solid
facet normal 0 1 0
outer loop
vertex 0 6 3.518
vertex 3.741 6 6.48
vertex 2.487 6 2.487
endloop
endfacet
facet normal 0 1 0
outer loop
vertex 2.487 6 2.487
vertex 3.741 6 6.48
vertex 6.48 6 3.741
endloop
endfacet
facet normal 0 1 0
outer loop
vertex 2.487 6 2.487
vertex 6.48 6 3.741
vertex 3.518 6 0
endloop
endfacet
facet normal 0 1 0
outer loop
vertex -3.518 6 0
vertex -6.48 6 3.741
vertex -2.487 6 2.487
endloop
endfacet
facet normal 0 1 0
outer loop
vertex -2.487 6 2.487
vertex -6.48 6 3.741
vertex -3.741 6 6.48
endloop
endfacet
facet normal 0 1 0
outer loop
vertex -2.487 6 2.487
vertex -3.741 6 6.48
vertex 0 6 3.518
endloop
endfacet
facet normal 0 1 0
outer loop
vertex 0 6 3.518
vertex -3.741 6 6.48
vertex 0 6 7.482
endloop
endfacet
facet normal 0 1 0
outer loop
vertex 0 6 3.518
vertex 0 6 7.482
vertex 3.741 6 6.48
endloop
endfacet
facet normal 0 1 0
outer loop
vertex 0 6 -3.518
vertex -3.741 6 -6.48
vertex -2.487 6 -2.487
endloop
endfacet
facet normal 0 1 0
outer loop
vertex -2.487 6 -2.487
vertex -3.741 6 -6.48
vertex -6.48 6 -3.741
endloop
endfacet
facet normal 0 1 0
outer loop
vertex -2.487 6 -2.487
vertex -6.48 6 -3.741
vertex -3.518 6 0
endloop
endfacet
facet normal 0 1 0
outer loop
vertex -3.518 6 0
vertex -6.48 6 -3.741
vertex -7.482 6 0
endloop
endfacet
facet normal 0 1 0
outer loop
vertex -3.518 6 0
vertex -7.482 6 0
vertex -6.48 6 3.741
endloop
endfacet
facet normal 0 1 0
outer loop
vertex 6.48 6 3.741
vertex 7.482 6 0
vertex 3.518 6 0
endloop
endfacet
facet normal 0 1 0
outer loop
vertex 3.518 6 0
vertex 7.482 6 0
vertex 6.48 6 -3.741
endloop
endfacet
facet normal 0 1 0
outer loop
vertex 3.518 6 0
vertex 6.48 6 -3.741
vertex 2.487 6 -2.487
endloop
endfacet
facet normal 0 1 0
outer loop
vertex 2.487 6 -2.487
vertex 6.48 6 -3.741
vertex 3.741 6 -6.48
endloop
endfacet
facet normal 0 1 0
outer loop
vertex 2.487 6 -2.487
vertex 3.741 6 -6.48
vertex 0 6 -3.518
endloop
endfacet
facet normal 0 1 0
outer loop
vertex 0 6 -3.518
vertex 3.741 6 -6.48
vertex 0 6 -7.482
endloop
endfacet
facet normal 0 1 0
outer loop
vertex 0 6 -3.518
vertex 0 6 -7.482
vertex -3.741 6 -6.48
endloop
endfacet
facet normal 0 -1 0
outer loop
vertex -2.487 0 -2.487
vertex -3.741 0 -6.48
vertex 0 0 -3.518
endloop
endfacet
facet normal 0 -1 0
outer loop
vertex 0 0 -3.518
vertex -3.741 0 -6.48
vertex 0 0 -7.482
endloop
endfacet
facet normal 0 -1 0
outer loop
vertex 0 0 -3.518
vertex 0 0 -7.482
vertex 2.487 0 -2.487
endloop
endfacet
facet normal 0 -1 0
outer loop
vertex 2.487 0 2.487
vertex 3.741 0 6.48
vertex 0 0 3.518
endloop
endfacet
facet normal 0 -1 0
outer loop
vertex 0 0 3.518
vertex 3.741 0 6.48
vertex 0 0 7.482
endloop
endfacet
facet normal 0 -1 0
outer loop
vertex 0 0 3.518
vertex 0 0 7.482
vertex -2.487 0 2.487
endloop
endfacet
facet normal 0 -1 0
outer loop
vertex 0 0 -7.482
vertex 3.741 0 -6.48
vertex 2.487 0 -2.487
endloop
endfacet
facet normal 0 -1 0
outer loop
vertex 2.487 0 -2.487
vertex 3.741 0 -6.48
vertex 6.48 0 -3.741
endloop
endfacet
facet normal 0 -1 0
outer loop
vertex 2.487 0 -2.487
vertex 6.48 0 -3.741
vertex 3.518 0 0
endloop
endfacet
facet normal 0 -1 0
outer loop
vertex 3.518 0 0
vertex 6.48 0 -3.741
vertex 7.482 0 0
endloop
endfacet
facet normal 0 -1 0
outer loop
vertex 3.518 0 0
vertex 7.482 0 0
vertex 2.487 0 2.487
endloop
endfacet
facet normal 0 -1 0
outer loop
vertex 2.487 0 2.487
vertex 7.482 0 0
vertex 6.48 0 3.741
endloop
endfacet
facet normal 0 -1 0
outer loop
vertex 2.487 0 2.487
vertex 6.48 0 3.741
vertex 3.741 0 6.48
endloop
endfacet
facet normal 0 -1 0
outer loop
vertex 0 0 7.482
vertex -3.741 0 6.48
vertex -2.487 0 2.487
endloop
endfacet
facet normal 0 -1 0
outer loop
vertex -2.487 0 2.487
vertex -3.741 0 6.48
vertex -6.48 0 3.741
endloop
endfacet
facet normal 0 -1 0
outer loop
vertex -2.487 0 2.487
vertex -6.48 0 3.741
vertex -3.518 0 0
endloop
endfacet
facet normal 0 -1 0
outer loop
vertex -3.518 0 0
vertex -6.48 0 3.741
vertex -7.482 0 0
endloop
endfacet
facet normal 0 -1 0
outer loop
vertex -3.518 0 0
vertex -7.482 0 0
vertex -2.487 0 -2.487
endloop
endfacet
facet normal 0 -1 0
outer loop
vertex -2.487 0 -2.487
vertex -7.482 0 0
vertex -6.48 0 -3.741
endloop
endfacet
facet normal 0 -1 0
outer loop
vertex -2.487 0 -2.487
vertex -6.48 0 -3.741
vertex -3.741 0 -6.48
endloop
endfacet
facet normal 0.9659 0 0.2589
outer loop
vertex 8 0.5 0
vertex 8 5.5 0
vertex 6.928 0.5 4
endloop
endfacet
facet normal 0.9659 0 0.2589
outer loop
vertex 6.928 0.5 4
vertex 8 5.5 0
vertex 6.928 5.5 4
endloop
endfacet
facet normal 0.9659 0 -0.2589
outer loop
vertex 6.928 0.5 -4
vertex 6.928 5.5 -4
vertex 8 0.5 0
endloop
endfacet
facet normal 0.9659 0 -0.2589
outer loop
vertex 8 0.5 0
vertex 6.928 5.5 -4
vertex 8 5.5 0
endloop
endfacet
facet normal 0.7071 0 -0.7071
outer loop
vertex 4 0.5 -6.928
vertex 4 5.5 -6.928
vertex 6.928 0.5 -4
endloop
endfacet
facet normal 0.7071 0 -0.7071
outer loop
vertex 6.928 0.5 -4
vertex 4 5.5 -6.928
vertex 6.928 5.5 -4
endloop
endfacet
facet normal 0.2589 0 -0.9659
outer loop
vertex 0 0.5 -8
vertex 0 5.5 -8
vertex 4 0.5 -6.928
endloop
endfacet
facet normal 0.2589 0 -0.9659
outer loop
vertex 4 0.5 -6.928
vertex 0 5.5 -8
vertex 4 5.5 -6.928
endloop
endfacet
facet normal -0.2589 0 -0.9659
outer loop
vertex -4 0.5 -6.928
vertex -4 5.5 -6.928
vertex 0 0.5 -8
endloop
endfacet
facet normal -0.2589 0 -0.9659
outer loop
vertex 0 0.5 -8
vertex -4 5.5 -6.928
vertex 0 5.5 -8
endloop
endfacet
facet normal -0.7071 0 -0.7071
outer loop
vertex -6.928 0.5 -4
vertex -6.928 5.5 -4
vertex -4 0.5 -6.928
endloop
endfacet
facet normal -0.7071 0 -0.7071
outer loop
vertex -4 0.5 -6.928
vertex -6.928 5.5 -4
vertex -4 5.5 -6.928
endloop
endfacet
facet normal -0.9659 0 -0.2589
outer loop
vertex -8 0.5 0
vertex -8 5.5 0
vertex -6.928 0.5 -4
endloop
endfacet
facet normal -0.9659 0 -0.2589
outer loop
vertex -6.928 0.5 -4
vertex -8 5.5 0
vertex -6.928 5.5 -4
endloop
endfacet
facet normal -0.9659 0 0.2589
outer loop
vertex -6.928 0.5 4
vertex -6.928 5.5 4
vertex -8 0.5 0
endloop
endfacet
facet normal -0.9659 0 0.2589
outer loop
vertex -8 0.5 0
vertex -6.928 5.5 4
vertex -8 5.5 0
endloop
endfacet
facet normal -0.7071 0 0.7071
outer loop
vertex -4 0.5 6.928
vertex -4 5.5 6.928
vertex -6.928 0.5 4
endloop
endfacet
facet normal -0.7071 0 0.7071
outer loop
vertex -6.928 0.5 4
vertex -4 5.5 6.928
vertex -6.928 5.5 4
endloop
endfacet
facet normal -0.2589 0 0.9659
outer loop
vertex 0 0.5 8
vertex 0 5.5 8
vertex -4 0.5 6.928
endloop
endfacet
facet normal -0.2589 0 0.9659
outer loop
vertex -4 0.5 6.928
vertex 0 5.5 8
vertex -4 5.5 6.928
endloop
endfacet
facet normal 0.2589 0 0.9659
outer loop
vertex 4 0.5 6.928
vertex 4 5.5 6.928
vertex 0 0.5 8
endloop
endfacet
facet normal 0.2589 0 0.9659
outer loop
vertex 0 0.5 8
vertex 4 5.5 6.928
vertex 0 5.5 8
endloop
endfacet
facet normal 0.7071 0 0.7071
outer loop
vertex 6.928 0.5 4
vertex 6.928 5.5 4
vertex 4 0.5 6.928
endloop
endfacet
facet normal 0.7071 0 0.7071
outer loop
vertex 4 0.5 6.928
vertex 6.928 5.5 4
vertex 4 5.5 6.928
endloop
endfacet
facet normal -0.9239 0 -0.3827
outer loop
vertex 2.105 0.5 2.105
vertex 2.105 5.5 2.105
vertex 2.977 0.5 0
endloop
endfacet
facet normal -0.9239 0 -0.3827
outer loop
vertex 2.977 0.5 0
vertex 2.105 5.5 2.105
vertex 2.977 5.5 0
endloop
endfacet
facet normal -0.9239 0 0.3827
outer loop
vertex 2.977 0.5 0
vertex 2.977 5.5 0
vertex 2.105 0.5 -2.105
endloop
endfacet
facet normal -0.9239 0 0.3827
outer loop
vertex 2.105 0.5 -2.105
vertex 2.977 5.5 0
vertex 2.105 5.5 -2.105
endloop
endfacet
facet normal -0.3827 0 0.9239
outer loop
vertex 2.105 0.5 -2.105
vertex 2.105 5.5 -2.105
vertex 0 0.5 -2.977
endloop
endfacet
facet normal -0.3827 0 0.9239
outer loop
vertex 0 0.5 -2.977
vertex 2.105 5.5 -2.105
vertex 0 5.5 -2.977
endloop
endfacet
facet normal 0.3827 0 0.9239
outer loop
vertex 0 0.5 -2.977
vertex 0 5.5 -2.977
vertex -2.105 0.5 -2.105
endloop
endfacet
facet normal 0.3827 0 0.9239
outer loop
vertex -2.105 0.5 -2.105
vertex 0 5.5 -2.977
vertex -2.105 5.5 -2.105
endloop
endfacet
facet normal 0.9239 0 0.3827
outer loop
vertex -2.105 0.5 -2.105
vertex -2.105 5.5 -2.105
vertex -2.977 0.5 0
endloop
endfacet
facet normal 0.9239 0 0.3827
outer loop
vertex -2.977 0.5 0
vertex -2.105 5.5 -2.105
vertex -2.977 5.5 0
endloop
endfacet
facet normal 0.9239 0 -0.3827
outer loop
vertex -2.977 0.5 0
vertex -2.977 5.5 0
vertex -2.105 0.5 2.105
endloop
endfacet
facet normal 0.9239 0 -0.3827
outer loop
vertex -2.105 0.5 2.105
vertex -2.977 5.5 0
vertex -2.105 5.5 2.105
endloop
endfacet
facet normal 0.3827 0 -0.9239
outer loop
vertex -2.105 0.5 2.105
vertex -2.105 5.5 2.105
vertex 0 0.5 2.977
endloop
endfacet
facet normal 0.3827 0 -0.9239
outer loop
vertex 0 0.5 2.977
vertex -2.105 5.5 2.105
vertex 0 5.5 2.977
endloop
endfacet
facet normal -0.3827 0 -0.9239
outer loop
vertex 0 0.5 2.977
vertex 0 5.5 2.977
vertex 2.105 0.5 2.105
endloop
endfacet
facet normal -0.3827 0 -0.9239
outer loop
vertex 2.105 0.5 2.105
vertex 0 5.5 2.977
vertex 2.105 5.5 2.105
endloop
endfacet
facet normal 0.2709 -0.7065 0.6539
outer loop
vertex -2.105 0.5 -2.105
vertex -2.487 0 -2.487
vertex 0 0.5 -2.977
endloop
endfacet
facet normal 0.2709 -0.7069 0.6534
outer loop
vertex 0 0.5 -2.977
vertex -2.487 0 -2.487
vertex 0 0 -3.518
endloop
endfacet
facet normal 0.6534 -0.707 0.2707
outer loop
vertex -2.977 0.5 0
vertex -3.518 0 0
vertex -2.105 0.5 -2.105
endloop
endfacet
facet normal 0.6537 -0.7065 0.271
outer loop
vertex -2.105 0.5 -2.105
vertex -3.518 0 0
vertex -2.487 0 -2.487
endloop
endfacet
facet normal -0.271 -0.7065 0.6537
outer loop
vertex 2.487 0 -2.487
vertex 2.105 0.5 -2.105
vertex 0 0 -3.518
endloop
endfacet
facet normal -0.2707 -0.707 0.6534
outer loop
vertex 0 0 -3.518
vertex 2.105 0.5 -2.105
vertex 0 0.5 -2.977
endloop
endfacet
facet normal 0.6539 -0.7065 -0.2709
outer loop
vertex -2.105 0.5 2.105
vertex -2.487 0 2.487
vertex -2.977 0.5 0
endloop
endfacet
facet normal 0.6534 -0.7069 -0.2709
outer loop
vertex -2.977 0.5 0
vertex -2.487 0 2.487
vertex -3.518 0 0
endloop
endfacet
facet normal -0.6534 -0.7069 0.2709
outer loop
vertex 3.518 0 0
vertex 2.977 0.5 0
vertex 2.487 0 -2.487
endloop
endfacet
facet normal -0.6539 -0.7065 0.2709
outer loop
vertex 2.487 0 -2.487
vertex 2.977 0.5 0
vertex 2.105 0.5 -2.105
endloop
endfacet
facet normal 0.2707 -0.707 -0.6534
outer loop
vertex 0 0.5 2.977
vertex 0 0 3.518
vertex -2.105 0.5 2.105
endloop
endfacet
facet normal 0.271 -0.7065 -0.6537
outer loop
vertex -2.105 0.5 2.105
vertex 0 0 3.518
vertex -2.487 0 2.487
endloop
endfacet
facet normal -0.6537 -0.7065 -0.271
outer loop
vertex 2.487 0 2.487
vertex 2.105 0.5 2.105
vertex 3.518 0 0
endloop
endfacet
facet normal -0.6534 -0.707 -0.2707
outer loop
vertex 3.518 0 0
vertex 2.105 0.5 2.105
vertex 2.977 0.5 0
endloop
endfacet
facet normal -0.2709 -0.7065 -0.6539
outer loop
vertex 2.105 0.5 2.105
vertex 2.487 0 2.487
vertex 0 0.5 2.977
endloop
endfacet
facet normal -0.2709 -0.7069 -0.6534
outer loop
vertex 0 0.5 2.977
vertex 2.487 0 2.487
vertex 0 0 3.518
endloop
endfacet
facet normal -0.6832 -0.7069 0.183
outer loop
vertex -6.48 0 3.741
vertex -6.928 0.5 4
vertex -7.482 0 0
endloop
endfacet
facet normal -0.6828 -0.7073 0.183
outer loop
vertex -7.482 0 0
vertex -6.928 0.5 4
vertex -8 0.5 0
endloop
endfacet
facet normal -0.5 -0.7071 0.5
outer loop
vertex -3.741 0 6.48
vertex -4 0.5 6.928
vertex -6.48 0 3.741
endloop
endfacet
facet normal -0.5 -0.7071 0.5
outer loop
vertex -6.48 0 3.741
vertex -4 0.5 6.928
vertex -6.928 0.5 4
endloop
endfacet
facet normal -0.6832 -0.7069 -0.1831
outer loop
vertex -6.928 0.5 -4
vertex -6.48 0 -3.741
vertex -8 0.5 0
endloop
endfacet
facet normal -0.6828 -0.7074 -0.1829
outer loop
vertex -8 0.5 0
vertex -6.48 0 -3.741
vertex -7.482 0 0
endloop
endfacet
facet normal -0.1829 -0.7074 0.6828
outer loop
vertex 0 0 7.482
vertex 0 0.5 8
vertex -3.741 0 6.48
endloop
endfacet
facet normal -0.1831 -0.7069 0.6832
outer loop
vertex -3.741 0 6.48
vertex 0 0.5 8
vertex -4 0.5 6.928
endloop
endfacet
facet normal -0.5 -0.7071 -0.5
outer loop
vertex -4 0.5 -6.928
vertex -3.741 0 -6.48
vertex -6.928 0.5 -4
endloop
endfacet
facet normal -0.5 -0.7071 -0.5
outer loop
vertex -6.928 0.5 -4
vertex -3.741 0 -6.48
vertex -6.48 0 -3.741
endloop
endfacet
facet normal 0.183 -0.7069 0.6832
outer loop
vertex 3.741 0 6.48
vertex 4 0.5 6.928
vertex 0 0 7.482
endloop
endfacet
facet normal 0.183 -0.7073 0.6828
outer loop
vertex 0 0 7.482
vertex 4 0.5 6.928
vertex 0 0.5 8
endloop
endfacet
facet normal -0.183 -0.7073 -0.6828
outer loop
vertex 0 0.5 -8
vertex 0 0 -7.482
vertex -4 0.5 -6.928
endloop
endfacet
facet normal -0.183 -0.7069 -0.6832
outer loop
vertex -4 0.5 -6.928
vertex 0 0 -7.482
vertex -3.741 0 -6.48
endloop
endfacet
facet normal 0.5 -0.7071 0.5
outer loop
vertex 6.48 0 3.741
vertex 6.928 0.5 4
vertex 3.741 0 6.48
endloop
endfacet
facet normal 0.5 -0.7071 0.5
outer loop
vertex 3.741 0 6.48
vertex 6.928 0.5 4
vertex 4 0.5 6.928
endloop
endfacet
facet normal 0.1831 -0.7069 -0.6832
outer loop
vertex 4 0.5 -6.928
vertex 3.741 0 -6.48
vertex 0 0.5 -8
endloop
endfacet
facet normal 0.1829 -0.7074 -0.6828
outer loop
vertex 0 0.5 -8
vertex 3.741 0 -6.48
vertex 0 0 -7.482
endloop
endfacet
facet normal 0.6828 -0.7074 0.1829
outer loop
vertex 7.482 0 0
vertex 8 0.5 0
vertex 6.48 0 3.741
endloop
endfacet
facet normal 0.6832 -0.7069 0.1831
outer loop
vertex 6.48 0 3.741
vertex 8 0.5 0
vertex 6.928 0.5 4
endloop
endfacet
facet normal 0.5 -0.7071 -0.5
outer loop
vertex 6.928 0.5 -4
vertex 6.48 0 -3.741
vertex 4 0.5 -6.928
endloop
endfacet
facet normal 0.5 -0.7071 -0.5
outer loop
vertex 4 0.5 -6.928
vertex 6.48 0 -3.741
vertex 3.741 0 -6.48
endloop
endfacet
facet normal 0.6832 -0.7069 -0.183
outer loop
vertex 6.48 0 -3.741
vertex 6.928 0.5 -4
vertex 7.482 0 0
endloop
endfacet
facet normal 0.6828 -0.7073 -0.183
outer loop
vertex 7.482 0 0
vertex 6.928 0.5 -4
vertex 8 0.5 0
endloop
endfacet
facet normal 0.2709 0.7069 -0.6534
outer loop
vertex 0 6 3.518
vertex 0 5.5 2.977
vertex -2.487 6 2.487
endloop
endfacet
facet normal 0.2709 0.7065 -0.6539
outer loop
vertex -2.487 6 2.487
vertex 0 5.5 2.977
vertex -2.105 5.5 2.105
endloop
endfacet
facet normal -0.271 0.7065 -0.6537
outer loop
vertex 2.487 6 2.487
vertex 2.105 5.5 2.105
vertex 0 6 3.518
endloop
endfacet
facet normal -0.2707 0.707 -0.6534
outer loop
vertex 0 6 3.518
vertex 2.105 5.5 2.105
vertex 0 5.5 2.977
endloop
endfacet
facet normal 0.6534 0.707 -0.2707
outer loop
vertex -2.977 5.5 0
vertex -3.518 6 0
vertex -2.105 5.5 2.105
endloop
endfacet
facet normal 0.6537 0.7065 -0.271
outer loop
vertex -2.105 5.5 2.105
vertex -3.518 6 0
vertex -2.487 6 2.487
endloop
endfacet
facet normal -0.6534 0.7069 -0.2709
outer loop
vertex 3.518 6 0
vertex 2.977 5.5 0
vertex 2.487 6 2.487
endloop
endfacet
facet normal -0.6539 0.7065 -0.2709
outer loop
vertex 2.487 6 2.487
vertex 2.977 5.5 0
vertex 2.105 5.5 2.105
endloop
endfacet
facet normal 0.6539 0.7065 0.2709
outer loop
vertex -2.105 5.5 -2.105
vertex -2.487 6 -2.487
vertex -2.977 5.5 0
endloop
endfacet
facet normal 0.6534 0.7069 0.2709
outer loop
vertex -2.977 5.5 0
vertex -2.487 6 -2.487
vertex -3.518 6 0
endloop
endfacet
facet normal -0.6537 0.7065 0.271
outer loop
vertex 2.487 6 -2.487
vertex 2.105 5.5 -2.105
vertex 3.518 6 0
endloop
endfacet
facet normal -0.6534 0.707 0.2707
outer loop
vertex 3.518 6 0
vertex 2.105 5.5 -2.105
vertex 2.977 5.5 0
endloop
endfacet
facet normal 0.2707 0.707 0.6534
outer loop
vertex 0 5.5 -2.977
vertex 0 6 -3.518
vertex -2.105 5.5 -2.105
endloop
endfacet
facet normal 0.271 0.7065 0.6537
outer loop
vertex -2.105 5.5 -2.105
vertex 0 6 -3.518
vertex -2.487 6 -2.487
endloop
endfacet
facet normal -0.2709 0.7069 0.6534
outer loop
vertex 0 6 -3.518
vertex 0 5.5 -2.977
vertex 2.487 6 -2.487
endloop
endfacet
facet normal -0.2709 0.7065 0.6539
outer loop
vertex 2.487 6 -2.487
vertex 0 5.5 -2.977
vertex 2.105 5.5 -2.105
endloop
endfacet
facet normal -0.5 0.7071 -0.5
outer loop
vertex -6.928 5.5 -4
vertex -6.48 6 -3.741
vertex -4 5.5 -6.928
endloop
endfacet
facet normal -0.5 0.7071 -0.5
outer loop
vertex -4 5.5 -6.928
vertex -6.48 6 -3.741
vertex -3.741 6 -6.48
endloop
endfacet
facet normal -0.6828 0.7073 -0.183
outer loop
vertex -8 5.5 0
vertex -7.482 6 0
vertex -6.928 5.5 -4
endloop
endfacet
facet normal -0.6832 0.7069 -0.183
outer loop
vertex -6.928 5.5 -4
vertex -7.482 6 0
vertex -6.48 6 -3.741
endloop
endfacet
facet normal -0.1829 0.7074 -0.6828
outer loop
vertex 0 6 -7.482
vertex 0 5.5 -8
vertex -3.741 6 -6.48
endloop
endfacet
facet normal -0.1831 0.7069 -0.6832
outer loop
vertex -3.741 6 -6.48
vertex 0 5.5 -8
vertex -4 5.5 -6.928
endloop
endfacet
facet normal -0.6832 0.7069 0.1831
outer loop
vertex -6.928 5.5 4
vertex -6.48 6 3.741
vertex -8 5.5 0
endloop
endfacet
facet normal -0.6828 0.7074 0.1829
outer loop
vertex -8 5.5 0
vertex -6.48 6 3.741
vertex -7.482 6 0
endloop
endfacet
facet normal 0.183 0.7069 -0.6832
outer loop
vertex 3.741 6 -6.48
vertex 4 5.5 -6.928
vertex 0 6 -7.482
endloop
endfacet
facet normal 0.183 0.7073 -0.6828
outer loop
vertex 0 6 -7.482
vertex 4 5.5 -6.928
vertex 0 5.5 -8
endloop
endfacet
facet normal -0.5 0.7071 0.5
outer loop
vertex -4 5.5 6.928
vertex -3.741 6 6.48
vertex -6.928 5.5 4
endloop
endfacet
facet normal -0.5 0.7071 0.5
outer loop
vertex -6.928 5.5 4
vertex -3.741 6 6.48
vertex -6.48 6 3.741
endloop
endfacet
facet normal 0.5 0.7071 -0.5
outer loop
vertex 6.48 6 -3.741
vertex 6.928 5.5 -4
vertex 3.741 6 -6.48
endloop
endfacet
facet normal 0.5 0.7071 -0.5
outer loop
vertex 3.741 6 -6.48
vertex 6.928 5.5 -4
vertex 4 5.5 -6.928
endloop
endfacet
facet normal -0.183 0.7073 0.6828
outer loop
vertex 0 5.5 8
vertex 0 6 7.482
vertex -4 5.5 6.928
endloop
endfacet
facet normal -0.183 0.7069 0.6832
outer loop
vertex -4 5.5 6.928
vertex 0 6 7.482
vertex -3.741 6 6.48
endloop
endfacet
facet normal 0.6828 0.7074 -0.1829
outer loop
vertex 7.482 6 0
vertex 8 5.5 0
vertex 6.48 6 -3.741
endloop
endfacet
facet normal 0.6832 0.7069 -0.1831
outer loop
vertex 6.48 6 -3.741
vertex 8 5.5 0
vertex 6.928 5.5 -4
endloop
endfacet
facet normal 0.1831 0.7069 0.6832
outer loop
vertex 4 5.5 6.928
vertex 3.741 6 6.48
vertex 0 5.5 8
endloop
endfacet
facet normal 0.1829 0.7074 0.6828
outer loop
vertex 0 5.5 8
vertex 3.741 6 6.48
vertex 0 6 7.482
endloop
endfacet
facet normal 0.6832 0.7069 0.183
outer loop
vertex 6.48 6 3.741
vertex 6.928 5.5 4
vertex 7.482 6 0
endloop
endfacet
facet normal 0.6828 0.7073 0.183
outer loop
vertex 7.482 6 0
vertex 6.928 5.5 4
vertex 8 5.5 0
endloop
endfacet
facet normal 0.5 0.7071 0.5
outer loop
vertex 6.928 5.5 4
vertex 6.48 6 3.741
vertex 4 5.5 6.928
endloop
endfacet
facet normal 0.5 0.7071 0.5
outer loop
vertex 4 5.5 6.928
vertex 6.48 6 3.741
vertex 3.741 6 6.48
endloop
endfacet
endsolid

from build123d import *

# Parameters (mm, degrees)
BOSS_EXTRUDE1_DEPTH = 6
CHAMFER1_SIZE       = 0.5


with BuildPart() as part:
    # Sketch1 → Boss-Extrude1 (new body)
    with BuildSketch(Plane(origin=(0, 0, 0), x_dir=(1, 0, 0), z_dir=(0, 1, 0))):
        Polygon((8, 0), (6.92820323, 4), (4, 6.92820323), (0, 8), (-4, 6.92820323), (-6.92820323, 4), (-8, 0), (-6.92820323, -4), (-4, -6.92820323), (0, -8), (4, -6.92820323), (6.92820323, -4), align=None)
        Polygon((2.976578551, 0), (2.104758878, 2.104758878), (0, 2.976578551), (-2.104758878, 2.104758878), (-2.976578551, 0), (-2.104758878, -2.104758878), (0, -2.976578551), (2.104758878, -2.104758878), align=None, mode=Mode.SUBTRACT)
    extrude(amount=BOSS_EXTRUDE1_DEPTH)

    # Chamfer1
    chamfer1_edges = [part.edges().sort_by_distance(p)[0] for p in [
        (5.464101615, 6, -5.464101615),
        (5.464101615, 0, 5.464101615),
        (2, 0, 7.464101615),
        (-2, 0, 7.464101615),
        (-5.464101615, 0, 5.464101615),
        (-7.464101615, 0, 2),
        (-7.464101615, 0, -2),
        (2, 6, -7.464101615),
        (-5.464101615, 0, -5.464101615),
        (-2, 0, -7.464101615),
        (2, 0, -7.464101615),
        (5.464101615, 0, -5.464101615),
        (7.464101615, 0, -2),
        (7.464101615, 0, 2),
        (-2, 6, -7.464101615),
        (-5.464101615, 6, -5.464101615),
        (-7.464101615, 6, -2),
        (-7.464101615, 6, 2),
        (-5.464101615, 6, 5.464101615),
        (-2, 6, 7.464101615),
        (2, 6, 7.464101615),
        (2.540668714, 0, 1.052379439),
        (2.540668714, 0, -1.052379439),
        (1.052379439, 0, -2.540668714),
        (-1.052379439, 0, -2.540668714),
        (5.464101615, 6, 5.464101615),
        (-2.540668714, 0, -1.052379439),
        (-2.540668714, 0, 1.052379439),
        (-1.052379439, 0, 2.540668714),
        (1.052379439, 0, 2.540668714),
        (2.540668714, 6, 1.052379439),
        (2.540668714, 6, -1.052379439),
        (1.052379439, 6, -2.540668714),
        (-1.052379439, 6, -2.540668714),
        (7.464101615, 6, 2),
        (-2.540668714, 6, -1.052379439),
        (-2.540668714, 6, 1.052379439),
        (-1.052379439, 6, 2.540668714),
        (1.052379439, 6, 2.540668714),
        (7.464101615, 6, -2),
    ]]
    chamfer(chamfer1_edges, length=CHAMFER1_SIZE)


solid = part.part
